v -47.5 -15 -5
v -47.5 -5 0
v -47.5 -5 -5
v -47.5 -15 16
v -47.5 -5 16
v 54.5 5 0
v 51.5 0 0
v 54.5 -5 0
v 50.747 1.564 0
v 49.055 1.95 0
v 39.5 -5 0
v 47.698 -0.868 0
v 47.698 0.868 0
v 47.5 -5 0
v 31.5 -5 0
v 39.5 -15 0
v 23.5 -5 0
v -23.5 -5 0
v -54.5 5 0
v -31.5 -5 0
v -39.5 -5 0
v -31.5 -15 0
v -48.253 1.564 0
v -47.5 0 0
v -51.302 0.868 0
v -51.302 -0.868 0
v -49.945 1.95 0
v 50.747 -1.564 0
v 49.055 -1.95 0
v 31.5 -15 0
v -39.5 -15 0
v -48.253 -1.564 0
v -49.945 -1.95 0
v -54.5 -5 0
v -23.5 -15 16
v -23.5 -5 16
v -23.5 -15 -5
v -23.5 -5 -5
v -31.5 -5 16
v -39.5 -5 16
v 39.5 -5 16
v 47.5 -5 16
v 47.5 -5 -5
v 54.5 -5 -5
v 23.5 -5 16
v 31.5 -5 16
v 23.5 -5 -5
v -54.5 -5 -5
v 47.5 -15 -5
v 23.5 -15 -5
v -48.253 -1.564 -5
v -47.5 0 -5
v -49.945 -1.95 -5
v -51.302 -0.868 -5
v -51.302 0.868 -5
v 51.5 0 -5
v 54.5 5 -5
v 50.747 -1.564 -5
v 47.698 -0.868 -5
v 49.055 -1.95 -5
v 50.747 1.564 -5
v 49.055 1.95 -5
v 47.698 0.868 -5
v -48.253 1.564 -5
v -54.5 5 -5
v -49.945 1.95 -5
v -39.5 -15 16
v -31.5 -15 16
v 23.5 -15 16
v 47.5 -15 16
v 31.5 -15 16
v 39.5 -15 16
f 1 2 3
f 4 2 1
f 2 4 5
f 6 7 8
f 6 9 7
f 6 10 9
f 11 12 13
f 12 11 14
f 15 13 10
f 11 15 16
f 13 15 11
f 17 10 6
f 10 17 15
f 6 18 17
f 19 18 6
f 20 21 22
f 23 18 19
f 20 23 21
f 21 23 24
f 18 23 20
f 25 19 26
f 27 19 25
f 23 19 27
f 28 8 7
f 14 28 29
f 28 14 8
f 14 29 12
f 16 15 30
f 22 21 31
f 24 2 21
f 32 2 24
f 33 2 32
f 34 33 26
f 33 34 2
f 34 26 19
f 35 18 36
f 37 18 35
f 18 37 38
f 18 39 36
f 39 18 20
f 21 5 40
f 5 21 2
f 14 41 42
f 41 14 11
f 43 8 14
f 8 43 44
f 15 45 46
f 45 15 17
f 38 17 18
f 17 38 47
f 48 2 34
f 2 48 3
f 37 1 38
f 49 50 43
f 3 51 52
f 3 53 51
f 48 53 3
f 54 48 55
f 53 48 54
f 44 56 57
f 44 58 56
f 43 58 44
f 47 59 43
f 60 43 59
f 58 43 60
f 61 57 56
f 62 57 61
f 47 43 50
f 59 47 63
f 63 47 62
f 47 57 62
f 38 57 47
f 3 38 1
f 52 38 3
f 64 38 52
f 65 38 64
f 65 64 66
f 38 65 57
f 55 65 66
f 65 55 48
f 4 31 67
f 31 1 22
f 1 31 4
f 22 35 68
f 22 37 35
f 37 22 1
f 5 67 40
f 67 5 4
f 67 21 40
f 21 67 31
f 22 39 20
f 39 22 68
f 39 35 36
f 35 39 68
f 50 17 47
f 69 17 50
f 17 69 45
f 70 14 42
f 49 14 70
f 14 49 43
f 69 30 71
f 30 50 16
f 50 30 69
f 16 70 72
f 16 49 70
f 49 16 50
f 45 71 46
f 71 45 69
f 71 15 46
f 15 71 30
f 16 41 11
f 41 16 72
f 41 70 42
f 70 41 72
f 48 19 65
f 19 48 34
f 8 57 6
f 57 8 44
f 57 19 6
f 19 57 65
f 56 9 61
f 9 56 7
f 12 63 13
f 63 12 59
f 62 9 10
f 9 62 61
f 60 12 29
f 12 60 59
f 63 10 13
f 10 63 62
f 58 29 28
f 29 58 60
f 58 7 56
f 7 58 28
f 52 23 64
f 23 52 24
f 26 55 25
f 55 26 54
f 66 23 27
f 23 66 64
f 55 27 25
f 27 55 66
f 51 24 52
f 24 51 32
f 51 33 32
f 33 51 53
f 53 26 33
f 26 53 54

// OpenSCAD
/* 
 * Telebot 1.1
 * Copyright (c) 2015-2016 by Paul-Louis Ageneau
 *
 * This program is free software: you can redistribute it and/or modify
 * it under the terms of the GNU General Public License as published by
 * the Free Software Foundation, either version 3 of the License, or
 * (at your option) any later version.
 *
 * This program is distributed in the hope that it will be useful,
 * but WITHOUT ANY WARRANTY; without even the implied warranty of
 * MERCHANTABILITY or FITNESS FOR A PARTICULAR PURPOSE.  See the
 * GNU General Public License for more details.
 *
 * You should have received a copy of the GNU General Public License
 * along with this program.  If not, see <http://www.gnu.org/licenses/>.
 */

// Back wheel supports connector

card_width = 43;
card_height = 48;
card_space = 7;

motor_width = 12;
motor_height = 10;
motor_depth = 25;

axis_radius = 5;

width = (motor_depth+ 3 + 2 )*2 + card_width + 3*2;
depth = 10;
height = (axis_radius + 3)*2;
side_thickness = 10;

difference() {
    union() {
        translate([0, 0, -5/2]) cube([width, depth, 5], center = true);
        translate([-width/2+height/4+15, 0, 0]) {
            translate([0, -depth, -5/2]) cube([3*height/2, depth, 5], center = true);
            translate([-height/2, -depth, (height-5)/2]) cube([height/2, depth, height+5], center = true);
            translate([height/2, -depth, (height-5)/2]) cube([height/2, depth, height+5], center = true);
        }
        translate([width/2-height/4-15, 0, 0]) {
            translate([0, -depth, -5/2]) cube([3*height/2, depth, 5], center = true);
            translate([-height/2, -depth, (height-5)/2]) cube([height/2, depth, height+5], center = true);
            translate([height/2, -depth, (height-5)/2]) cube([height/2, depth, height+5], center = true);
        }
    }
    
    union() {
        translate([width/2-side_thickness/2, 0, 0]) 
            screw_hole();
        translate([-width/2+side_thickness/2, 0, 0]) 
            screw_hole();
    }
}

module screw_hole()
{
    union() {
            cylinder(h = 100, r = 2, center=true);
    }
}
